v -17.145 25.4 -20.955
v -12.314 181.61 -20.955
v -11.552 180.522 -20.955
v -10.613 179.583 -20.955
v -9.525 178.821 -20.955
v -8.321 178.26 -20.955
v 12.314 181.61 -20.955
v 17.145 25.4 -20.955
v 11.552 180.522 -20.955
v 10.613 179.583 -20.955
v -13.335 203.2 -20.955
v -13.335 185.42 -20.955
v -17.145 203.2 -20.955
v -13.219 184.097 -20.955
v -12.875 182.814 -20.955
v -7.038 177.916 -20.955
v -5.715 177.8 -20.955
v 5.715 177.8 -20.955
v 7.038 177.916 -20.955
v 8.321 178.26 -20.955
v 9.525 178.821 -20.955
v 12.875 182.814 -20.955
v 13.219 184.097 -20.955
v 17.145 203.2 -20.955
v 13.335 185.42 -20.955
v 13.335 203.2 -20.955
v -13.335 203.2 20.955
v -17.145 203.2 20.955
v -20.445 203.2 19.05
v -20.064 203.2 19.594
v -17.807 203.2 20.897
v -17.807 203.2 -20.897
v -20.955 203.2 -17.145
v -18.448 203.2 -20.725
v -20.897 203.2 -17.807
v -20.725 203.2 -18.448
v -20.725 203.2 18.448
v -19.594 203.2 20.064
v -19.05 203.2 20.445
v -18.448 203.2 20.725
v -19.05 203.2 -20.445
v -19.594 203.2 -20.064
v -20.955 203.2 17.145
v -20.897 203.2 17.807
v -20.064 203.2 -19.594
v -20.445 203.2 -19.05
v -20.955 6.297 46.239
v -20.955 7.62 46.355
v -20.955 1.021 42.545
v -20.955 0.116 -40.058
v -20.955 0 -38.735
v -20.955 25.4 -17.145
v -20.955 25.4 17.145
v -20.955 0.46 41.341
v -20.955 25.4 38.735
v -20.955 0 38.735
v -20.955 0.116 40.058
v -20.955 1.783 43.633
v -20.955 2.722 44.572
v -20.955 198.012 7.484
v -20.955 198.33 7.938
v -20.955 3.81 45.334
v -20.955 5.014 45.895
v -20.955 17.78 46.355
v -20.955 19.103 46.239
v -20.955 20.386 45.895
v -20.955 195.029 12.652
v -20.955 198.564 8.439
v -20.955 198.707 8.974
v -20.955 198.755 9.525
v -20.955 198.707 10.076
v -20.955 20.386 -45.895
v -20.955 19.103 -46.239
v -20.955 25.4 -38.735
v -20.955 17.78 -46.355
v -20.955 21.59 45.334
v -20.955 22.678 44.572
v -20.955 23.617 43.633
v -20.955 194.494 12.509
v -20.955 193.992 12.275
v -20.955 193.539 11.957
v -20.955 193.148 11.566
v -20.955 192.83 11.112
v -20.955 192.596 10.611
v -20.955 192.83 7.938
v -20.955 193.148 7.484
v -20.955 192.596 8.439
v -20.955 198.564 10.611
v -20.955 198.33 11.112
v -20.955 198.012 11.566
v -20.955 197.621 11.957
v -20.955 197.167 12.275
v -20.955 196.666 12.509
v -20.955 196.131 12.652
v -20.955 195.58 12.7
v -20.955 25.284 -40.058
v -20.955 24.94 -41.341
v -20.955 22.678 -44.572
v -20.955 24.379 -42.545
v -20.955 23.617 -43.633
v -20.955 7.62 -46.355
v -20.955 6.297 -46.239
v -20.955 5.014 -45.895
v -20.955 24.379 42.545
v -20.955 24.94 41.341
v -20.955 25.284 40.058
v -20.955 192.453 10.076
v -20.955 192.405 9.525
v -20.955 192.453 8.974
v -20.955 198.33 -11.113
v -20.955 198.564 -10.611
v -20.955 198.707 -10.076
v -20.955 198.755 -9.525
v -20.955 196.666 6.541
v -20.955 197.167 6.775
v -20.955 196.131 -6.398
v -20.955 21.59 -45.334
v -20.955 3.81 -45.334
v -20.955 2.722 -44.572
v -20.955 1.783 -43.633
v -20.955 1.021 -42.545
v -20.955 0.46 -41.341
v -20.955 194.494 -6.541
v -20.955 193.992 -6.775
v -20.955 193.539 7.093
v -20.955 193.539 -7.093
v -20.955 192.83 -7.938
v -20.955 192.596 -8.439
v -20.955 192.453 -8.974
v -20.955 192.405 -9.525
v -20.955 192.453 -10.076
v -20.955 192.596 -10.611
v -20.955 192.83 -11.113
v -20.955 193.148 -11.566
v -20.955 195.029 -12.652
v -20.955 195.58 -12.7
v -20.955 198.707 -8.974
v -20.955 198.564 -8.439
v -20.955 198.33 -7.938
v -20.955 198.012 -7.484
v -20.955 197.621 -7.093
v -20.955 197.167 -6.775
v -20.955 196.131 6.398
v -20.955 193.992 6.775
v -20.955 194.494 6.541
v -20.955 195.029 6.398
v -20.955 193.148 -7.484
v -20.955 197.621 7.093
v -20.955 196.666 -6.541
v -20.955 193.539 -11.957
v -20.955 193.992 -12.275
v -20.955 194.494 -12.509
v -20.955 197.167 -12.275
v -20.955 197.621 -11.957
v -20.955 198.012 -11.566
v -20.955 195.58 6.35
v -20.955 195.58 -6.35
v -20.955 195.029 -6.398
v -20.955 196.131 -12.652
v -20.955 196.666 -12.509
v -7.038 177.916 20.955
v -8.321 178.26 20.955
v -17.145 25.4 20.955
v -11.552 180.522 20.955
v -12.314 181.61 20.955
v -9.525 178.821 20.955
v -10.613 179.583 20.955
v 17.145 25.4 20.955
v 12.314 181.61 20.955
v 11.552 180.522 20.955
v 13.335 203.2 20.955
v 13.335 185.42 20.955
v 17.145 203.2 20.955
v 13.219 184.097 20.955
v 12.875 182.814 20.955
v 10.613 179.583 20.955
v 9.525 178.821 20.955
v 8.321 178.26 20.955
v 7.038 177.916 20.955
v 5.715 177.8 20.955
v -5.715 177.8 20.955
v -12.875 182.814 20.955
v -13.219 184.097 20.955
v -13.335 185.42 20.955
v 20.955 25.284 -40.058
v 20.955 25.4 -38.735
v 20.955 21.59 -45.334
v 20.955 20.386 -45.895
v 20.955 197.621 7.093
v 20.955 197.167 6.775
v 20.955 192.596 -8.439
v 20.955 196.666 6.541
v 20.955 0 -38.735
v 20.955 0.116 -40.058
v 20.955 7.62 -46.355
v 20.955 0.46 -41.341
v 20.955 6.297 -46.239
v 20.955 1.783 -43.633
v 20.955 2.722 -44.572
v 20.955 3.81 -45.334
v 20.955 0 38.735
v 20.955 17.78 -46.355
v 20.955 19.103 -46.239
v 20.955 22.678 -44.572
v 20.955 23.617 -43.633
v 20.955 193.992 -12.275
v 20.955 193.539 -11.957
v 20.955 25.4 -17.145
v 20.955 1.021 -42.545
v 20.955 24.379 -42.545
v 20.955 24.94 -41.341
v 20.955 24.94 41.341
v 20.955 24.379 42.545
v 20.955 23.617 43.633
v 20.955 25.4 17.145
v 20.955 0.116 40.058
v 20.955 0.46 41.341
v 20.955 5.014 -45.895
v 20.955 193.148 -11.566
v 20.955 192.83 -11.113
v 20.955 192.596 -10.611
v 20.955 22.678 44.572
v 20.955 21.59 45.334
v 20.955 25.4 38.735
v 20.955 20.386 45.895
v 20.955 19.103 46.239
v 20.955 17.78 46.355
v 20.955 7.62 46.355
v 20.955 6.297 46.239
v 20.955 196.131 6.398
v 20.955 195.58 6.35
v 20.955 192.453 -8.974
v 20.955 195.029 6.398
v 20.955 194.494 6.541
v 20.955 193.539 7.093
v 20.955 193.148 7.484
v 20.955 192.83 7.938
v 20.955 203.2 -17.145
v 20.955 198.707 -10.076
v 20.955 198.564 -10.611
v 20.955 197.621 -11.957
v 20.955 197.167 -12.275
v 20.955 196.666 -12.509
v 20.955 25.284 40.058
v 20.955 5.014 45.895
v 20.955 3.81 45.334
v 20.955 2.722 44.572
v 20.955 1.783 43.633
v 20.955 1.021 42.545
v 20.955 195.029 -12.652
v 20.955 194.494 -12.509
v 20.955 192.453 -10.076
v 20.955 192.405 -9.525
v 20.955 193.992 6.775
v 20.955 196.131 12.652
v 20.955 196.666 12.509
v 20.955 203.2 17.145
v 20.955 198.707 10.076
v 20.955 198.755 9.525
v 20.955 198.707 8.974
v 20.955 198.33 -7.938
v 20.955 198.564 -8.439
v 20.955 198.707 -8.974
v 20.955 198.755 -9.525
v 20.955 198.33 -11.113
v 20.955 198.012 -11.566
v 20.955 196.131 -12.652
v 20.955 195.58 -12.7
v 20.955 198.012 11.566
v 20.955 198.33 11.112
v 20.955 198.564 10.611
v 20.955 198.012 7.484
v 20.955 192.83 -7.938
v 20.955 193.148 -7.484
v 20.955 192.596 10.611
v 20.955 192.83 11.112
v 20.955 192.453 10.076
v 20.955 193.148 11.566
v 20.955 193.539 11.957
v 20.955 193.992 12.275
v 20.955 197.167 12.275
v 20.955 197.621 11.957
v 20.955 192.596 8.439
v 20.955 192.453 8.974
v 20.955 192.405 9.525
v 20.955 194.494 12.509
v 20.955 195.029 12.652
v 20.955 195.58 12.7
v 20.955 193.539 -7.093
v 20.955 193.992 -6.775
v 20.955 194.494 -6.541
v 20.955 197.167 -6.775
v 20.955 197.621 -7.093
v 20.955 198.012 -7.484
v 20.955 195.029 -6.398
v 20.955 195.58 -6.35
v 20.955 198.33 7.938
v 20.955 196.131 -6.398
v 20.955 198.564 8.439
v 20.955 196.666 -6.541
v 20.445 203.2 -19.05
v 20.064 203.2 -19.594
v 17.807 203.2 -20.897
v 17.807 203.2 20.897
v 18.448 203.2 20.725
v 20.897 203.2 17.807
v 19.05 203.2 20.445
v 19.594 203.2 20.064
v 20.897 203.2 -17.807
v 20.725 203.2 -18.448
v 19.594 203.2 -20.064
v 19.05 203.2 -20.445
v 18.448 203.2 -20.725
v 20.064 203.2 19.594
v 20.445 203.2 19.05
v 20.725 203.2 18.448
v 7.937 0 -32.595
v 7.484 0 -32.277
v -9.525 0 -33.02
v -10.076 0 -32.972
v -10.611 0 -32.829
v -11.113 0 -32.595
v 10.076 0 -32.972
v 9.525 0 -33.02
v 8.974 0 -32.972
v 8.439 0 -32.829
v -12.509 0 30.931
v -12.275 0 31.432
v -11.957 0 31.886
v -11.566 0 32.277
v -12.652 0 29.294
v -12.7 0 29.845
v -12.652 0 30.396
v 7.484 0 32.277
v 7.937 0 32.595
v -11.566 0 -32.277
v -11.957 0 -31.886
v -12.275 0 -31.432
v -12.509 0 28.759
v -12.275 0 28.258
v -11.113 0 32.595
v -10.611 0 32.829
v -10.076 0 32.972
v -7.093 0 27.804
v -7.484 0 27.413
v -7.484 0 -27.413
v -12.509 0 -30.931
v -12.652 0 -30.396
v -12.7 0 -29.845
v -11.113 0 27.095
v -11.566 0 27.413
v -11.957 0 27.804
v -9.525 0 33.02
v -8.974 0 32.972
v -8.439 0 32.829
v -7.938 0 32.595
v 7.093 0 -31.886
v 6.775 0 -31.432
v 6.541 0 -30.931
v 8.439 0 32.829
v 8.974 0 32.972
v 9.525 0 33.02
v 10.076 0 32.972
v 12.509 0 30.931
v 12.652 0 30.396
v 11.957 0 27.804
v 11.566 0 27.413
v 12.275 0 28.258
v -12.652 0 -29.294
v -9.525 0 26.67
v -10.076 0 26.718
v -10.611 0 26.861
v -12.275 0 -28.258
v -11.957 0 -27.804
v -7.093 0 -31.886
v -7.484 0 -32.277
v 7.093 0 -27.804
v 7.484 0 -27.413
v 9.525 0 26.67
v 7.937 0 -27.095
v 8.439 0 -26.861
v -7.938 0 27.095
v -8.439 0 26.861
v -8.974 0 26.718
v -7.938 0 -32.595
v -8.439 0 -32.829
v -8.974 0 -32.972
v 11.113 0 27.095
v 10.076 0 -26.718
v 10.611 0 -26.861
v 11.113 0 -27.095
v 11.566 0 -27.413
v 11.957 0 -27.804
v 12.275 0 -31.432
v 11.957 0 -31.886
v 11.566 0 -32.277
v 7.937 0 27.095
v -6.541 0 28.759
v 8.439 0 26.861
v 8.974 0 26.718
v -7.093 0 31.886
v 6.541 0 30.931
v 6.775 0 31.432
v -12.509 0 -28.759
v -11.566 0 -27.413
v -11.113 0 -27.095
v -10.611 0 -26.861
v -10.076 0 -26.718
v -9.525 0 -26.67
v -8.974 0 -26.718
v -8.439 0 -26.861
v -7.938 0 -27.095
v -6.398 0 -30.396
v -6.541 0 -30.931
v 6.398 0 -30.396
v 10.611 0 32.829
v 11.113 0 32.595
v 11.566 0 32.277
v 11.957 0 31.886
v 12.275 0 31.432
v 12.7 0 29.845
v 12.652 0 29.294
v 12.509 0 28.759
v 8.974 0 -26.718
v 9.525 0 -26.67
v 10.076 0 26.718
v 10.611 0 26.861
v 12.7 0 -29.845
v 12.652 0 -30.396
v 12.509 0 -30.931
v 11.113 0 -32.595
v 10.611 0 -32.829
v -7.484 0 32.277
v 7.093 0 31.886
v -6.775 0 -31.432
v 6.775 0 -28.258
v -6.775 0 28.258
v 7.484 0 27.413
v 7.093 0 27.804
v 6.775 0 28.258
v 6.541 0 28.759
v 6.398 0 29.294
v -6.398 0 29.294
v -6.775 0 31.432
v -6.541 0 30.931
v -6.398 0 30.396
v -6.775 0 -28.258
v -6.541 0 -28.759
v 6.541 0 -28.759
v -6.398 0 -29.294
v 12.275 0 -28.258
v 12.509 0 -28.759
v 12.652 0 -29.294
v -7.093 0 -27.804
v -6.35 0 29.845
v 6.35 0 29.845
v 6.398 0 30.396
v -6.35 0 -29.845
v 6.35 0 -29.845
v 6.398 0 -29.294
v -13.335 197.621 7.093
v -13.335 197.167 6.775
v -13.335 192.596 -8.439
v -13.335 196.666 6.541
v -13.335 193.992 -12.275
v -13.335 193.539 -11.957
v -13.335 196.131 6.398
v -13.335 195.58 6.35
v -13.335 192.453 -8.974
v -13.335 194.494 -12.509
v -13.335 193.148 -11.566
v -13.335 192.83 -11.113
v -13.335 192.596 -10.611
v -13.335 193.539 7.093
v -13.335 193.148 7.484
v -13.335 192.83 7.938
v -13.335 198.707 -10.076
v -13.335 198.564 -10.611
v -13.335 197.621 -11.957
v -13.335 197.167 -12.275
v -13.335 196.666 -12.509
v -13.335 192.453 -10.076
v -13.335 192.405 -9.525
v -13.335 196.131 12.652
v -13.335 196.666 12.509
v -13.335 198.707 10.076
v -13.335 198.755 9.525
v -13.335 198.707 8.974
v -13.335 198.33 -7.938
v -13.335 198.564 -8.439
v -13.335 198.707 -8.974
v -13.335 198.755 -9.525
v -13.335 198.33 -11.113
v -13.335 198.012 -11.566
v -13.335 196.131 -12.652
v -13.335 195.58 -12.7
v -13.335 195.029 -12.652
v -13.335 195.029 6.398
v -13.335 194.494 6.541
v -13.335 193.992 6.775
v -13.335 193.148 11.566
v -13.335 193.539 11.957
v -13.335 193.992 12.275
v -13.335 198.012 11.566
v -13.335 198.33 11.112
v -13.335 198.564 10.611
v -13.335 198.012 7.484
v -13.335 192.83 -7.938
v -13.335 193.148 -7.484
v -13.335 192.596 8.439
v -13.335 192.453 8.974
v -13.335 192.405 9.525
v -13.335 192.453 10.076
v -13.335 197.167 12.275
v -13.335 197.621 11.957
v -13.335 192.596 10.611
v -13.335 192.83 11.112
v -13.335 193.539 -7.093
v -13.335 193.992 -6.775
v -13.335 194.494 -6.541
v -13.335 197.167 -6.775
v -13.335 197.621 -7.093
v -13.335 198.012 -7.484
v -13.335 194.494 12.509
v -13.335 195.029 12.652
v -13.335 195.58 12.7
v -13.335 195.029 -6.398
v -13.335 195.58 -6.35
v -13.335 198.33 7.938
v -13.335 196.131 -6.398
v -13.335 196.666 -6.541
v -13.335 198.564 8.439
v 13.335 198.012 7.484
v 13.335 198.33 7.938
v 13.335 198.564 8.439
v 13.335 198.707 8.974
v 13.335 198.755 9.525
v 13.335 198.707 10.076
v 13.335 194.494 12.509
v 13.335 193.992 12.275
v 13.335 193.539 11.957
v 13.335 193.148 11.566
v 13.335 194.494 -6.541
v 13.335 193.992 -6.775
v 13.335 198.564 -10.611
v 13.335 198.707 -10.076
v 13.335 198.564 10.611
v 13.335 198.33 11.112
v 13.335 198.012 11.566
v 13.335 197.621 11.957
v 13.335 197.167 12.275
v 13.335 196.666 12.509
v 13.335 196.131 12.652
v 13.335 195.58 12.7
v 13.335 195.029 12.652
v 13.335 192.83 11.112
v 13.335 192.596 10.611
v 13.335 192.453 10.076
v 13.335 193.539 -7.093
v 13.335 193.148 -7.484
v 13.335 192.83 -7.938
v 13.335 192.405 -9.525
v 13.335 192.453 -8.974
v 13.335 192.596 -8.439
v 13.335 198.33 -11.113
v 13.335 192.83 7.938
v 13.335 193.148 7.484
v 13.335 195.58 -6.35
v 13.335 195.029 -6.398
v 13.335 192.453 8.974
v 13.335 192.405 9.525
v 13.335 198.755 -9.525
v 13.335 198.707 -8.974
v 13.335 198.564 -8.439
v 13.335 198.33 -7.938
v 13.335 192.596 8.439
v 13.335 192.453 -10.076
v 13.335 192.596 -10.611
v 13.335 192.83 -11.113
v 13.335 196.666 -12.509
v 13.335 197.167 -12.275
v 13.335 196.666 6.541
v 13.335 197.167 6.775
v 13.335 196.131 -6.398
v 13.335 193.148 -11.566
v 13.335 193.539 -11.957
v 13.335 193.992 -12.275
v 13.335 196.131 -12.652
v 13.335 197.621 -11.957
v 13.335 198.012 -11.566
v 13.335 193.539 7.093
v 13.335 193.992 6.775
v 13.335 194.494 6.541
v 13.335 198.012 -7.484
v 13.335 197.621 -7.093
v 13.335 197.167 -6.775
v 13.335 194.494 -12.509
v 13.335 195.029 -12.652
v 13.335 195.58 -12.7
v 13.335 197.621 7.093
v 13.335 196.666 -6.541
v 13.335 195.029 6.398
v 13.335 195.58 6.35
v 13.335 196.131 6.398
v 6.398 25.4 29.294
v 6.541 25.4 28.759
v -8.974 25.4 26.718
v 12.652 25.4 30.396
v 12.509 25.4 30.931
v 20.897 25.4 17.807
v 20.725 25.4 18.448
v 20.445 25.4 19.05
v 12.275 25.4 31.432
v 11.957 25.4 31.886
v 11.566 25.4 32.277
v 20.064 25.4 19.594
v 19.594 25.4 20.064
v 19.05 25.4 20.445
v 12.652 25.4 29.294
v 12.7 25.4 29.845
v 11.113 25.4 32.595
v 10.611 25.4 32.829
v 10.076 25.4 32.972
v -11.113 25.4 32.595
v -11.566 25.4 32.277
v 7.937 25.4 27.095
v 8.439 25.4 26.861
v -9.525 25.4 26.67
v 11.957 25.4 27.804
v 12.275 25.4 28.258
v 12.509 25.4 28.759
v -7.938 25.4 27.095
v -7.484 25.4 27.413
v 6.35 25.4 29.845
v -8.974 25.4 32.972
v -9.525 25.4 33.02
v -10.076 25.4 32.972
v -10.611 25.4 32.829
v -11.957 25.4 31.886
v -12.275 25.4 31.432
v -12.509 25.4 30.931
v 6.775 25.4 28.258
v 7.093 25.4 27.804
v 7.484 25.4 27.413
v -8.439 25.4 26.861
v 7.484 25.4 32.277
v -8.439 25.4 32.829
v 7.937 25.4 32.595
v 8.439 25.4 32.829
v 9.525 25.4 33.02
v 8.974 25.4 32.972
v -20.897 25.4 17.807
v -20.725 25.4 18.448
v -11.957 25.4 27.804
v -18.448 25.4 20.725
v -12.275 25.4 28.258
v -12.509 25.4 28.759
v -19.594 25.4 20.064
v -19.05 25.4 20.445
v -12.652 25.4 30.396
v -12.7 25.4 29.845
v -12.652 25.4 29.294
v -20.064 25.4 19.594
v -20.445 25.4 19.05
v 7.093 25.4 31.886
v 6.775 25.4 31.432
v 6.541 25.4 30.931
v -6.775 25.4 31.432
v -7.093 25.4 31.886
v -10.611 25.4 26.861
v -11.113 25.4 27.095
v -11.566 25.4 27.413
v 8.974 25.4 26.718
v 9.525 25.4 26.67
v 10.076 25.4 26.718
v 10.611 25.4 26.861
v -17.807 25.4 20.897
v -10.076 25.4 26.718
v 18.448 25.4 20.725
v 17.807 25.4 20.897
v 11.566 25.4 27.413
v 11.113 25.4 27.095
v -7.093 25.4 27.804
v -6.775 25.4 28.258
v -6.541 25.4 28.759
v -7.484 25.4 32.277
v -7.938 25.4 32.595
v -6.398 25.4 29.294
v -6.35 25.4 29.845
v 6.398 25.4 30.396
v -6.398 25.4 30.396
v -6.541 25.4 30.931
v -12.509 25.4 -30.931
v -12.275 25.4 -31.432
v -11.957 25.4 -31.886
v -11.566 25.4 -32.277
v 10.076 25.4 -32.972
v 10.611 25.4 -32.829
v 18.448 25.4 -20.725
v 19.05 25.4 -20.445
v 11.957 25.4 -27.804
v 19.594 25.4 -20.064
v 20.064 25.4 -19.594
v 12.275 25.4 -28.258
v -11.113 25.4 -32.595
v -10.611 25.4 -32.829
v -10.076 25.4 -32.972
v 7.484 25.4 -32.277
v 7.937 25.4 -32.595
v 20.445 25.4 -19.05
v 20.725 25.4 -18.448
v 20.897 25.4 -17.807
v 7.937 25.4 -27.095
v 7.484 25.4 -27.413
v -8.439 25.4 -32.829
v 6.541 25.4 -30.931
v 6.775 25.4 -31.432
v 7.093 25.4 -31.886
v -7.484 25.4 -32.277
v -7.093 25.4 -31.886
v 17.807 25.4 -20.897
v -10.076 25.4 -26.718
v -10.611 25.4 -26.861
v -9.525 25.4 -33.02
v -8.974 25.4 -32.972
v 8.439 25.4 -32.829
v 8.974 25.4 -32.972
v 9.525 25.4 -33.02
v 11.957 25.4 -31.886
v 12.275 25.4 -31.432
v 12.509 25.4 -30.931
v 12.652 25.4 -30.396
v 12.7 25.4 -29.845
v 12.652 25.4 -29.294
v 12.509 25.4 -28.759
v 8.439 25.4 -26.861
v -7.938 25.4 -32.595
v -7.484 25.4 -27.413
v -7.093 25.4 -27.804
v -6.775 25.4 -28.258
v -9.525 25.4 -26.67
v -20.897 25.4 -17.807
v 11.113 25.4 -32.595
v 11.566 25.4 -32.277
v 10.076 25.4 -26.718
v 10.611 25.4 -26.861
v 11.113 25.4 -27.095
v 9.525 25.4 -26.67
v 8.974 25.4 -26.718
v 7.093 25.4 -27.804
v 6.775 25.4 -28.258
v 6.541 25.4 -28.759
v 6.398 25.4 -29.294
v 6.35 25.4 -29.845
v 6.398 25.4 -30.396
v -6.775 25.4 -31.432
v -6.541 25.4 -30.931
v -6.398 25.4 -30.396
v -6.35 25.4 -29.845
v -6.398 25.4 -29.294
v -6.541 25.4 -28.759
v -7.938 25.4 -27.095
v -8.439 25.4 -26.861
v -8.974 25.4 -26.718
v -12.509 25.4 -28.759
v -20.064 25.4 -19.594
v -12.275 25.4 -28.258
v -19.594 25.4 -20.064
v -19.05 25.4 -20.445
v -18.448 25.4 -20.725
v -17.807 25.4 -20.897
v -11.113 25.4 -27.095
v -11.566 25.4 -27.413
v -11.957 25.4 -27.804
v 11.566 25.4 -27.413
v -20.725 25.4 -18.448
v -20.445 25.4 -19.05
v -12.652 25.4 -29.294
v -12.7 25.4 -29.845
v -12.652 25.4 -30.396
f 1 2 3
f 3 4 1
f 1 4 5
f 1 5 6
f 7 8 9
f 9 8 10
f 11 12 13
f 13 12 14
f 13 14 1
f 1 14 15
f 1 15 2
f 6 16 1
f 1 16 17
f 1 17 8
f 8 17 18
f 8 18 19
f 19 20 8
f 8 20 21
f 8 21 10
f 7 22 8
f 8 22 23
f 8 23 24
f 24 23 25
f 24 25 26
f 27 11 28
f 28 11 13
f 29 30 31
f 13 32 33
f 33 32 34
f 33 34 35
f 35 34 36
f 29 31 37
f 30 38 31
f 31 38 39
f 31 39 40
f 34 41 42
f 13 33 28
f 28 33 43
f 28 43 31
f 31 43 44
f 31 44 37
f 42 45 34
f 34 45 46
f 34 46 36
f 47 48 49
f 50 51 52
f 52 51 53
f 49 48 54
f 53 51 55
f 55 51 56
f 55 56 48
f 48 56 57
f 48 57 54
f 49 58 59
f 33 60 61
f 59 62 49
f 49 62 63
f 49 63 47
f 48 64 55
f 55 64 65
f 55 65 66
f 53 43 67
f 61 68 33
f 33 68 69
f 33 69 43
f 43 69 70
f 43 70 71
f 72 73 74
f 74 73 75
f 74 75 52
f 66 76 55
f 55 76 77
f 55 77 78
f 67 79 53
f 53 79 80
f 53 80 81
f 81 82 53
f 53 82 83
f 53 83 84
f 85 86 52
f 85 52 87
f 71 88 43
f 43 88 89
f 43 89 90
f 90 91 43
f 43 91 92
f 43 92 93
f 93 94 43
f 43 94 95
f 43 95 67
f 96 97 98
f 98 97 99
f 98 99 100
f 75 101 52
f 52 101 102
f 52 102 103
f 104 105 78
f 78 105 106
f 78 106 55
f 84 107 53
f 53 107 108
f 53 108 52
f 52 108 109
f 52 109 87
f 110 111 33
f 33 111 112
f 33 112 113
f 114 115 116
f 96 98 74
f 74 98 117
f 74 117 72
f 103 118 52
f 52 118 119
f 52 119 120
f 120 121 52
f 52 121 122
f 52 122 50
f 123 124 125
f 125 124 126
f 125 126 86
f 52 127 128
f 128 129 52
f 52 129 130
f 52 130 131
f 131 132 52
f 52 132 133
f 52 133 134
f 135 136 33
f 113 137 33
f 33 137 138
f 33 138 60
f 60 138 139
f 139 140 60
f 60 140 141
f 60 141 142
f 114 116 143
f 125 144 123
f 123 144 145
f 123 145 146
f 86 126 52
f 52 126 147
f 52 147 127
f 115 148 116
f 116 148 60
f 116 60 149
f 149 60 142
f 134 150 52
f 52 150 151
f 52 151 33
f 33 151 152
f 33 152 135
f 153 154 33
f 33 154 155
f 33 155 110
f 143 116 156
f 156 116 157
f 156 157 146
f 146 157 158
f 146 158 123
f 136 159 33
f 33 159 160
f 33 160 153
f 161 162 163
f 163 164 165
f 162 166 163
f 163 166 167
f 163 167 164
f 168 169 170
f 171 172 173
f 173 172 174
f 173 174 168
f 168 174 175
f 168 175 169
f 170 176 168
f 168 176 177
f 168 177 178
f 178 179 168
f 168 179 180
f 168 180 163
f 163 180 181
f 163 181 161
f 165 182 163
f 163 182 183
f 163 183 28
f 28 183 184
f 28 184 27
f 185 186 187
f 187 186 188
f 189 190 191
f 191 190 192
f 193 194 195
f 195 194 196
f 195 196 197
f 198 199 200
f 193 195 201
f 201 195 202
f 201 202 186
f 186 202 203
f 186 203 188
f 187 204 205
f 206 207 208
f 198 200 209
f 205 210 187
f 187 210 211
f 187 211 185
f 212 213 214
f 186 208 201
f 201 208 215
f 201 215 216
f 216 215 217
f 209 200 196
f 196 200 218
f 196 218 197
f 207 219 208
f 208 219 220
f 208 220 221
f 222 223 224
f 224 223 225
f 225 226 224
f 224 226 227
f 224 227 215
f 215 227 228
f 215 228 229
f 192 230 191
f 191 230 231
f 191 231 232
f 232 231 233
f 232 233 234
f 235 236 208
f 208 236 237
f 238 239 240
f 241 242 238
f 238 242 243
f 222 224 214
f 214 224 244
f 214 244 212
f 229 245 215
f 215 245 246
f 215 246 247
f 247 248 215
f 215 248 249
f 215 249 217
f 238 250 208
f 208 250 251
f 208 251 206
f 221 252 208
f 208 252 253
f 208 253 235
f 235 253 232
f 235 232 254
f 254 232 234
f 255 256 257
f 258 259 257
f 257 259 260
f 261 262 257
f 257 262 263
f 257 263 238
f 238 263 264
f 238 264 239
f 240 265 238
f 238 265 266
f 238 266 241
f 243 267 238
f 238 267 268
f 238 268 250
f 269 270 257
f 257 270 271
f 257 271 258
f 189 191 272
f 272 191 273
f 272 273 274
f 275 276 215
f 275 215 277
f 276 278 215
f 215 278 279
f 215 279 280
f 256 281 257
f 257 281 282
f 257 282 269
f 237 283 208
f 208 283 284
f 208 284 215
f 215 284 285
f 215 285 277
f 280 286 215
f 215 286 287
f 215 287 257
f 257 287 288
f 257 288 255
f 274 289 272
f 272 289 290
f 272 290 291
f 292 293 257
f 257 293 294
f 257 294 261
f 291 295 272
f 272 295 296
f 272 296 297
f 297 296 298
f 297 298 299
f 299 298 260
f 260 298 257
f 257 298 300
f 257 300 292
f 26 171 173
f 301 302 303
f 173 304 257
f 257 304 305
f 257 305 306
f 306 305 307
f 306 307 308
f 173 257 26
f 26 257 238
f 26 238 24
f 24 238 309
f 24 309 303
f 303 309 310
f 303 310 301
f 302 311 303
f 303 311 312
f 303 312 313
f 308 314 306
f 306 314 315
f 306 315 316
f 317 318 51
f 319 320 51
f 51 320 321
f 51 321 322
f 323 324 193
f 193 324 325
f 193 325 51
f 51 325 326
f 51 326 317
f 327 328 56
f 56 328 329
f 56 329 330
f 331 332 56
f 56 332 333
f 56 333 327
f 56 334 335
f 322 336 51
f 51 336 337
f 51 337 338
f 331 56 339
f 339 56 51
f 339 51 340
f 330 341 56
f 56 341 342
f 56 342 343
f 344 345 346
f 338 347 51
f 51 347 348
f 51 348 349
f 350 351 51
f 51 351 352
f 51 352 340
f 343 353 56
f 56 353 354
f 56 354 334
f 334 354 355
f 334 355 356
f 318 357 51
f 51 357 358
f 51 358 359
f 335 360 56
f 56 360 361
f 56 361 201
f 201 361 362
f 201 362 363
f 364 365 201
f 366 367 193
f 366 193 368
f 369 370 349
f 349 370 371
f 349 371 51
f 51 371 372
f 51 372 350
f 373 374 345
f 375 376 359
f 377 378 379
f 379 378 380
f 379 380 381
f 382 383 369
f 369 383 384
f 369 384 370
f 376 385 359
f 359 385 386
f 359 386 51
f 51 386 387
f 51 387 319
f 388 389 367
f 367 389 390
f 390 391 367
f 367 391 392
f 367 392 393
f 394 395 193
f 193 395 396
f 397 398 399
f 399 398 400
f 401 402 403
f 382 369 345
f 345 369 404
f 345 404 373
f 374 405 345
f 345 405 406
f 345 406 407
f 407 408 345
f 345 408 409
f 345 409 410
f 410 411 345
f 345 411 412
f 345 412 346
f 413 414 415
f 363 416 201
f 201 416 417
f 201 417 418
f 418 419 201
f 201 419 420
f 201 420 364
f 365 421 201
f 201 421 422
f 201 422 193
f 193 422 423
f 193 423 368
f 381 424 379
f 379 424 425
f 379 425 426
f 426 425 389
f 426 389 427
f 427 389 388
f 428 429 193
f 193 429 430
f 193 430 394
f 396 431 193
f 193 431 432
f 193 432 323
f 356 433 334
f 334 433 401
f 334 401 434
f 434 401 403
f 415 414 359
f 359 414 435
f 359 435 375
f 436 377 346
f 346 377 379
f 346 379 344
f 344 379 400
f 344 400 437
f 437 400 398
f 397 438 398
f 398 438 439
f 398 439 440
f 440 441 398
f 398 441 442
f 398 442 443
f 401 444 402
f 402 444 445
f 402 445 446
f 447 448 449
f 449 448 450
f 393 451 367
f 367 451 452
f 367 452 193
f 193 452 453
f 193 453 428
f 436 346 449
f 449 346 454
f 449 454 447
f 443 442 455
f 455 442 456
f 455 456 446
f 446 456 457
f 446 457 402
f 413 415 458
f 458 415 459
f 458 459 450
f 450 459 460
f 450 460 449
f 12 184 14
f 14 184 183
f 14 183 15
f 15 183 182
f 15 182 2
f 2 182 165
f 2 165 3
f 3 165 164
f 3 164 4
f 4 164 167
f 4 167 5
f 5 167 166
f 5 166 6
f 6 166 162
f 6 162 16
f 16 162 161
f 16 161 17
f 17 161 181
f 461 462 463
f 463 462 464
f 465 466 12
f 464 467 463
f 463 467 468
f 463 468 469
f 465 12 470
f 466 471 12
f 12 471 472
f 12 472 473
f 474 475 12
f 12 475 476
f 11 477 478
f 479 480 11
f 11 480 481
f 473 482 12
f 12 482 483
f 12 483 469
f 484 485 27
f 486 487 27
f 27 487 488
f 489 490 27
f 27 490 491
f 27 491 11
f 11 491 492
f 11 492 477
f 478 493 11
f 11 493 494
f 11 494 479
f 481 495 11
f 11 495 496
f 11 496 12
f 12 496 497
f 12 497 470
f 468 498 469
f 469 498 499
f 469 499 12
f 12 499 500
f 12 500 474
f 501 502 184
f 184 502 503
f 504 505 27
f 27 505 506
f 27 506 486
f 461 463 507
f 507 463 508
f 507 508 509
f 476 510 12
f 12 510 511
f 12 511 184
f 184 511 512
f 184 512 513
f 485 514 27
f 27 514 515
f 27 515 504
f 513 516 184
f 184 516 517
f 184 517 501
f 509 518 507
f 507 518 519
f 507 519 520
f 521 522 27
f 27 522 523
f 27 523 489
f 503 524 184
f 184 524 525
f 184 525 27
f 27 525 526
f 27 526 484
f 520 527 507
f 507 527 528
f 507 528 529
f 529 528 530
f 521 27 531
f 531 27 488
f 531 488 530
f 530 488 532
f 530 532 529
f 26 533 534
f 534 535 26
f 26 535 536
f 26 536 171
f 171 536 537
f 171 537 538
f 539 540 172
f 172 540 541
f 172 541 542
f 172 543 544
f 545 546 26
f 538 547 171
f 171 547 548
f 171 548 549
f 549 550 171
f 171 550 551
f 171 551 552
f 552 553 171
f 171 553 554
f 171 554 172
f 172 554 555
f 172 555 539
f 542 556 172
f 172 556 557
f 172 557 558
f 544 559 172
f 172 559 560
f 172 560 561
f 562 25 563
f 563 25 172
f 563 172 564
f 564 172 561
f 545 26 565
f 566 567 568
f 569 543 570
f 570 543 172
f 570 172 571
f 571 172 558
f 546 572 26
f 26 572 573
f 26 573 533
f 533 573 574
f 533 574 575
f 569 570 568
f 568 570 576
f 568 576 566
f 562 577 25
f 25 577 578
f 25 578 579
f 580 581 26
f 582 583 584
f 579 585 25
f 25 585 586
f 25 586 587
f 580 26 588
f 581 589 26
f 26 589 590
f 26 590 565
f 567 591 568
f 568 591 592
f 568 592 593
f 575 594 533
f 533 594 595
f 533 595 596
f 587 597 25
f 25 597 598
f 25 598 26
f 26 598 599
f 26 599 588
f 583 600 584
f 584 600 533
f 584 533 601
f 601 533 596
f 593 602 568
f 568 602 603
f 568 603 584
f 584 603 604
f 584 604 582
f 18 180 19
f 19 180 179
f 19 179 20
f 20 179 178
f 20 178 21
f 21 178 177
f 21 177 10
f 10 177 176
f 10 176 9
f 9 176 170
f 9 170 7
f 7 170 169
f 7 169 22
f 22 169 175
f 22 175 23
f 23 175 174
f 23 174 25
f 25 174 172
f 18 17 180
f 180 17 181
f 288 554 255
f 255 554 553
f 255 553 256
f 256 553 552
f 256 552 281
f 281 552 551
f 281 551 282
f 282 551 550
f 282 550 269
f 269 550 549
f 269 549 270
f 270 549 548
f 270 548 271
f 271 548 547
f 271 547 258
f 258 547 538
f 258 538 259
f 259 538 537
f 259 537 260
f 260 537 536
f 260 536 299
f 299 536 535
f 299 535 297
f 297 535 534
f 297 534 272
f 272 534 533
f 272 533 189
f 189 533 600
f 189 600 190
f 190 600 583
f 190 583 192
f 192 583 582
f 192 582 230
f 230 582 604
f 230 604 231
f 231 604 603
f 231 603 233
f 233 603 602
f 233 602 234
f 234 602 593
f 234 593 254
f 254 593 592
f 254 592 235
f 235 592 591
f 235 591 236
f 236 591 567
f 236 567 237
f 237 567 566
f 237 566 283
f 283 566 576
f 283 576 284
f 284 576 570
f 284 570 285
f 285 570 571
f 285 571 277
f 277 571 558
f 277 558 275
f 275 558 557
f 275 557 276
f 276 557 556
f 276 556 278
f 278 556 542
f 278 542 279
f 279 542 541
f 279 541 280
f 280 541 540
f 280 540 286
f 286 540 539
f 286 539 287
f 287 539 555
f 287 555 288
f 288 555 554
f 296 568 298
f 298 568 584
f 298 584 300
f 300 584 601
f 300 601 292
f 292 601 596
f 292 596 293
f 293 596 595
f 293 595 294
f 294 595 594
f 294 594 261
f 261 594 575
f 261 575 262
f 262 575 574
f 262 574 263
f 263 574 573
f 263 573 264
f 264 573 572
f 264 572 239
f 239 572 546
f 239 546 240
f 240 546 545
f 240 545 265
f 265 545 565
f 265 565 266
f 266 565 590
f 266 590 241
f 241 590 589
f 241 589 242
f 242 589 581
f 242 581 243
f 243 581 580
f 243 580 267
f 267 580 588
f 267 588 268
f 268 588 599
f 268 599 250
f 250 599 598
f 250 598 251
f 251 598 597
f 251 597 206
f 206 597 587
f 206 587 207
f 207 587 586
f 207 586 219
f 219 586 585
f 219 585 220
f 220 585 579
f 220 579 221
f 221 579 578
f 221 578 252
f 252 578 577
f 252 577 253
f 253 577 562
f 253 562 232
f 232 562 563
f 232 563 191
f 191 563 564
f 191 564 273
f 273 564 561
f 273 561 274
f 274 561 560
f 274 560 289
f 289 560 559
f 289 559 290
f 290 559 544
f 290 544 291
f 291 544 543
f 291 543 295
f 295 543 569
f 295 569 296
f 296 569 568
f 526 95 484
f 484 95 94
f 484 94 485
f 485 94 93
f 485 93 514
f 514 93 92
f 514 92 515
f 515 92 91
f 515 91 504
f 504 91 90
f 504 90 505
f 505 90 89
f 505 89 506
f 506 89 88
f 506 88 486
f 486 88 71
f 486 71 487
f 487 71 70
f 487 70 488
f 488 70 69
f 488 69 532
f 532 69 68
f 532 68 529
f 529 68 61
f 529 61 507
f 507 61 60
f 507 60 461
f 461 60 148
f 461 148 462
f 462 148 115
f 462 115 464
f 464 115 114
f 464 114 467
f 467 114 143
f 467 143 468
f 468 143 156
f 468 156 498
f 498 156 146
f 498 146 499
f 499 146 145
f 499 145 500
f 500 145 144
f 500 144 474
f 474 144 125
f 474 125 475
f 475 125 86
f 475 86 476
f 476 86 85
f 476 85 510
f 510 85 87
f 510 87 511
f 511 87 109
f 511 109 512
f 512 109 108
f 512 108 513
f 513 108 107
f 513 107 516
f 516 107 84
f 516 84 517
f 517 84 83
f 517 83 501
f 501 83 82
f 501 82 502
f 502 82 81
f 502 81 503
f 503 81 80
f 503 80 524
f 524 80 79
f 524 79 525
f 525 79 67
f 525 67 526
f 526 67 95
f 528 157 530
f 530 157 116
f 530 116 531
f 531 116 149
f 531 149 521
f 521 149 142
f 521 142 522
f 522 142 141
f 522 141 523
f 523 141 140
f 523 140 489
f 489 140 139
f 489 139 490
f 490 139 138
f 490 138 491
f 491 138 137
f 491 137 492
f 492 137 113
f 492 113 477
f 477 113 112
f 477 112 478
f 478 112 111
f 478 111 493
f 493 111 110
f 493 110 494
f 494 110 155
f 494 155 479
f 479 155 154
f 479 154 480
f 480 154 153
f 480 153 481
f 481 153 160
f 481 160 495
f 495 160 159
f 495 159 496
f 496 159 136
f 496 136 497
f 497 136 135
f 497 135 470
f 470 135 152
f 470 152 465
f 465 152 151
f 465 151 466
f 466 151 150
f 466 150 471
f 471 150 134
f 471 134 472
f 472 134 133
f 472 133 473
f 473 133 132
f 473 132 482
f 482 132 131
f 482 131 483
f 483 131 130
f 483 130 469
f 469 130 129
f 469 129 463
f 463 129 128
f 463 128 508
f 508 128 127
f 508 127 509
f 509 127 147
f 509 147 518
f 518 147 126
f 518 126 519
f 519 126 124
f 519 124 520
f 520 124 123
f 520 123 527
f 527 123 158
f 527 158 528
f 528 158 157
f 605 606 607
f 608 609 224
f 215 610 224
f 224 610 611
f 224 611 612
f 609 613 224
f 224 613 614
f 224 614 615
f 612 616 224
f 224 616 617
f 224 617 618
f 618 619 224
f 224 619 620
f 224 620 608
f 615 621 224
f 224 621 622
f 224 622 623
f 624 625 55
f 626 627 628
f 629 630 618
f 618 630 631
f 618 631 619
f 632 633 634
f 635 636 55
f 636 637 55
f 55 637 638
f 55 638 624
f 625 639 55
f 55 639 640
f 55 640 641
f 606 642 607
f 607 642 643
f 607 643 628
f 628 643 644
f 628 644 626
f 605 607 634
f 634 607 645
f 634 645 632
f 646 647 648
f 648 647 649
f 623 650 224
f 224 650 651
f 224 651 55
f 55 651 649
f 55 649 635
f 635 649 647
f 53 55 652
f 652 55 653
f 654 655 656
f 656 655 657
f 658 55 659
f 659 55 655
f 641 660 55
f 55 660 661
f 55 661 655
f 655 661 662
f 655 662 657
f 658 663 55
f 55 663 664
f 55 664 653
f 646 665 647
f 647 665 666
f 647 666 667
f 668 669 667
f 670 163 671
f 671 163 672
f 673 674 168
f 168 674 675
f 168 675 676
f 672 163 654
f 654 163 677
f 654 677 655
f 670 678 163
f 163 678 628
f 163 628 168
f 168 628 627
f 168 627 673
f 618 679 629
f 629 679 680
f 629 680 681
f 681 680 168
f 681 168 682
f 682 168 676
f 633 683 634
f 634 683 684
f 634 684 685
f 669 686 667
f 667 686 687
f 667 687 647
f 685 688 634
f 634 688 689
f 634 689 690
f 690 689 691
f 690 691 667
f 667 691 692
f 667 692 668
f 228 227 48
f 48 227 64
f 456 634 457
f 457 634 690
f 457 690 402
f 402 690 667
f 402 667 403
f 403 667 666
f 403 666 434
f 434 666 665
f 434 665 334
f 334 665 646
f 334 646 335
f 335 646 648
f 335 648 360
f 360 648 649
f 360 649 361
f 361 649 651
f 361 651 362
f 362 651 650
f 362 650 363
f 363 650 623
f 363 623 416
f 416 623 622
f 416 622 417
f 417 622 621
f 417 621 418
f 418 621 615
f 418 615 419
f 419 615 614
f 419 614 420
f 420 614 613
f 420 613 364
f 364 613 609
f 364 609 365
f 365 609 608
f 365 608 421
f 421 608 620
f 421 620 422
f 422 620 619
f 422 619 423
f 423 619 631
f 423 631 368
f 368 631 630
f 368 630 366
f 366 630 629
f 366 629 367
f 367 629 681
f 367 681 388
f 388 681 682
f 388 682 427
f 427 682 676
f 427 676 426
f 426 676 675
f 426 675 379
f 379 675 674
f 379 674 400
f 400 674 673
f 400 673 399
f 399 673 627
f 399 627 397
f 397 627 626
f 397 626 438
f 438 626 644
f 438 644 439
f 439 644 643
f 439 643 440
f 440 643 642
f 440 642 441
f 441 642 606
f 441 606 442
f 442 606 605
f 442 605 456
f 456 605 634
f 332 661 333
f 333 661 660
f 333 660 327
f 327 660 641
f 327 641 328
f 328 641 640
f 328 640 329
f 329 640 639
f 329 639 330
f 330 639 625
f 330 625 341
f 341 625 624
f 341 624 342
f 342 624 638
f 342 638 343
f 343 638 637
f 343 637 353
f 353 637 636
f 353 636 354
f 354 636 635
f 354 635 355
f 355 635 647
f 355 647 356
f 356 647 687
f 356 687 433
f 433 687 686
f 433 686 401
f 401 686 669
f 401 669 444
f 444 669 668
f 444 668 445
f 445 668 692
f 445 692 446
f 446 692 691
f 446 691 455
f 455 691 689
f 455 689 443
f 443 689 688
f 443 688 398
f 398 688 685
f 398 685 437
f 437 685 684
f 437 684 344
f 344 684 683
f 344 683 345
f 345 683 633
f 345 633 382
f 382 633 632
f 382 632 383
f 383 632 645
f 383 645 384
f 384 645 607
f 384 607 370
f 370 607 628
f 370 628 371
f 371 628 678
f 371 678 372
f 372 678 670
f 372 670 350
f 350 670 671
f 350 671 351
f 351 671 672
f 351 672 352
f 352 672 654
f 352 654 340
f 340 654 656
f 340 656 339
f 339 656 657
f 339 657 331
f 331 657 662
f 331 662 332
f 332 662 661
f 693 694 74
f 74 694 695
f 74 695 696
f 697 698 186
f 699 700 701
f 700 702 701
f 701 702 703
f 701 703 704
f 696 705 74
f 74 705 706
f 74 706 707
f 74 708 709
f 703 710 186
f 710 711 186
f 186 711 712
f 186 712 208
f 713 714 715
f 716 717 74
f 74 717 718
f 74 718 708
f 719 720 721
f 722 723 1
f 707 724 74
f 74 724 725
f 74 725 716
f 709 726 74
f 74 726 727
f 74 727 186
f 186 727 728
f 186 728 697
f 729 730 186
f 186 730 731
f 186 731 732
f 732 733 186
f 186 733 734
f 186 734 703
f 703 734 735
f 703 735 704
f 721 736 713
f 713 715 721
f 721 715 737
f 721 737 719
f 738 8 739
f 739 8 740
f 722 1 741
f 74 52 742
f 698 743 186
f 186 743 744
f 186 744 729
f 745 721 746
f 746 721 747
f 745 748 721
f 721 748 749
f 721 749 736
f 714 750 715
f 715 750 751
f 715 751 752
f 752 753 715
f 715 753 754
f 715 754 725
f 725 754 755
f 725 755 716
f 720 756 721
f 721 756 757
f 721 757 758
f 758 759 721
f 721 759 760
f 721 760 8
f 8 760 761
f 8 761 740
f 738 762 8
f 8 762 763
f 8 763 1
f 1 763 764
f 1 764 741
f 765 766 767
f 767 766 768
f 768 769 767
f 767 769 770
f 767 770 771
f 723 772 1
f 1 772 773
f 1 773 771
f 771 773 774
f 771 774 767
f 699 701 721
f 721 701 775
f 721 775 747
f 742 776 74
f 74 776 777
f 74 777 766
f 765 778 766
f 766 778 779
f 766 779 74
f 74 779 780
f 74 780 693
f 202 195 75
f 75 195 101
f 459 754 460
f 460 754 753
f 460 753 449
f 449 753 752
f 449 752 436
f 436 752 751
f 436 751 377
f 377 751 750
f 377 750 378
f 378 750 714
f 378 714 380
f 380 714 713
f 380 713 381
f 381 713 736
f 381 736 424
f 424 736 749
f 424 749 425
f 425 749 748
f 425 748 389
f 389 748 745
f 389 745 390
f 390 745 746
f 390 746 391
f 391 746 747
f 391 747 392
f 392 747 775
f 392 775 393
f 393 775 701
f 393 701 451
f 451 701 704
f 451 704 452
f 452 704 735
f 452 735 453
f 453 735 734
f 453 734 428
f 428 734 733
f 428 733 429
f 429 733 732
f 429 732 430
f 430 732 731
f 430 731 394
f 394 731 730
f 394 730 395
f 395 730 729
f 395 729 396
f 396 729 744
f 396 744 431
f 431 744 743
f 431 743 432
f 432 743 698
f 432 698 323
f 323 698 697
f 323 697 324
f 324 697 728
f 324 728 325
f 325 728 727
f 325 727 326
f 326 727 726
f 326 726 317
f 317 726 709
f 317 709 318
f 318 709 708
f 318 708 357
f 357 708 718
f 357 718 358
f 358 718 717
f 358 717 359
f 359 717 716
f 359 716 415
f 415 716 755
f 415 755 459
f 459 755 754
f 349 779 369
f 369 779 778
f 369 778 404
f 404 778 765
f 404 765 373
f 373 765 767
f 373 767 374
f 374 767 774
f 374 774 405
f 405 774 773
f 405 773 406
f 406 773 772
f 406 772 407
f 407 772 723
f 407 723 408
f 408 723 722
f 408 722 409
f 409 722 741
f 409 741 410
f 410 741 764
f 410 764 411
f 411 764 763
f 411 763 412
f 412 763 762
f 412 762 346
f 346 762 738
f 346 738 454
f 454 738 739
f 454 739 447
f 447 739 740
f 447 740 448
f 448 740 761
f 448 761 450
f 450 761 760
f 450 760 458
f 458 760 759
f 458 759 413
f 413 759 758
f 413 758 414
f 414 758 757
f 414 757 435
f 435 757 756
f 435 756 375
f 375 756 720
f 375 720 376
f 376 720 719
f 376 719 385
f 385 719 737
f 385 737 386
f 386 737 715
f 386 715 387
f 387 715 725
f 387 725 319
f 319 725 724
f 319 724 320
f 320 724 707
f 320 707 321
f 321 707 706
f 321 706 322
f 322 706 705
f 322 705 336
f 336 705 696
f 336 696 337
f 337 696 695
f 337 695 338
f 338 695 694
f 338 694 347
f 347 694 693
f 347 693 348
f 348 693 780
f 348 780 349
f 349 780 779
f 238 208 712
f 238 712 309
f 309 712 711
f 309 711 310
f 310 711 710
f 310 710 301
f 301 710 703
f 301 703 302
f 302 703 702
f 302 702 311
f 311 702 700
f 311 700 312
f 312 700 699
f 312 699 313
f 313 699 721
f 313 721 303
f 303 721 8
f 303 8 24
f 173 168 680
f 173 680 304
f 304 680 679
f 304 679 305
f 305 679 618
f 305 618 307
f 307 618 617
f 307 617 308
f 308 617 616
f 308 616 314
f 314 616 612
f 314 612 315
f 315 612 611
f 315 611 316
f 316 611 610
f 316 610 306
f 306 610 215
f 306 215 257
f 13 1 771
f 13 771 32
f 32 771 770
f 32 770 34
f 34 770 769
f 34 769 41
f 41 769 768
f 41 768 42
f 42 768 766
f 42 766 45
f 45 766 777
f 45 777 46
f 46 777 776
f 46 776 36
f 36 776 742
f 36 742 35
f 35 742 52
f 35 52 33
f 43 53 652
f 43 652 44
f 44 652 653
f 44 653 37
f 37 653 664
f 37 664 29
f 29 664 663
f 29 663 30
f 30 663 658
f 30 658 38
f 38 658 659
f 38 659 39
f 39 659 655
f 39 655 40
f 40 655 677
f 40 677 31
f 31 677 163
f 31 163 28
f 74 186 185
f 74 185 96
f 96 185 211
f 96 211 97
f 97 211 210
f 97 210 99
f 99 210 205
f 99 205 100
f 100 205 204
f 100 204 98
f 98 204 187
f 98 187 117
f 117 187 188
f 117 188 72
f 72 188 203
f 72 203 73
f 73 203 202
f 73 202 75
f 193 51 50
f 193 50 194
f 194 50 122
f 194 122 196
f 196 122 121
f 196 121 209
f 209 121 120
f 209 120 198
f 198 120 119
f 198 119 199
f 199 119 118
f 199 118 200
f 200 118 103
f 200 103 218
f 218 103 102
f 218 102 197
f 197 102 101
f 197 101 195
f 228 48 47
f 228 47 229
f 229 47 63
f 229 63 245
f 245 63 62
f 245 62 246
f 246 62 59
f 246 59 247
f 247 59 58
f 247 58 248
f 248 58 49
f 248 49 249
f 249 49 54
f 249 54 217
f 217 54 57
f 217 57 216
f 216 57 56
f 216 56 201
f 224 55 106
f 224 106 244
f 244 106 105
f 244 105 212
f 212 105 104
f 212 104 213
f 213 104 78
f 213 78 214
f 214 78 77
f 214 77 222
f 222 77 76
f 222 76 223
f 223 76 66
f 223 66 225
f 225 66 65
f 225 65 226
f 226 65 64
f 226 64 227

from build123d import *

# Parameters (mm, degrees)
SKETCH1_W           = 26.67
SKETCH1_H           = 26.67
BOSS_EXTRUDE1_DEPTH = 5.08
SKETCH9_W           = 41.91
SKETCH9_H           = 41.91
BOSS_EXTRUDE7_DEPTH = 203.2
CUT_EXTRUDE4_DEPTH  = 42.91
SKETCH11_R          = 3.175
CUT_EXTRUDE5_DEPTH  = 42.91
SKETCH12_W          = 41.91
SKETCH12_H          = 25.4
BOSS_EXTRUDE8_DEPTH = 25.4
SKETCH13_R          = 3.175
CUT_EXTRUDE6_DEPTH  = 26.4
FILLET2_R           = 3.81
FILLET3_R           = 7.62


with BuildPart() as part:
    # Sketch1 → Boss-Extrude1 (new body)
    with BuildSketch(Plane(origin=(0, 0, 0), x_dir=(1, 0, 0), z_dir=(0, 1, 0))):
        Rectangle(SKETCH1_W, SKETCH1_H)
    extrude(amount=BOSS_EXTRUDE1_DEPTH)

    # Sketch9 → Boss-Extrude7 (add)
    with BuildSketch(Plane.XZ):
        Rectangle(SKETCH9_W, SKETCH9_H)
    extrude(amount=-BOSS_EXTRUDE7_DEPTH)

    # Sketch10 → Cut-Extrude4 (cut, through all)
    with BuildSketch(Plane.XY.offset(20.955)):
        with BuildLine():
            Line((-13.335, 185.42), (-13.335, 203.2))
            Line((-13.335, 203.2), (13.335, 203.2))
            Line((13.335, 203.2), (13.335, 185.42))
            ThreePointArc((13.335, 185.42), (11.103153673, 180.031846327), (5.715, 177.8))
            Line((5.715, 177.8), (-5.715, 177.8))
            ThreePointArc((-5.715, 177.8), (-11.103153673, 180.031846327), (-13.335, 185.42))
        make_face()
    extrude(amount=-CUT_EXTRUDE4_DEPTH, mode=Mode.SUBTRACT)

    # Sketch11 → Cut-Extrude5 (cut, through all)
    with BuildSketch(Plane.ZY.offset(20.955)):
        with Locations((-9.525, 195.58)):
            Circle(SKETCH11_R)
        with Locations((9.525, 195.58)):
            Circle(SKETCH11_R)
    extrude(amount=-CUT_EXTRUDE5_DEPTH, mode=Mode.SUBTRACT)

    # Sketch12 → Boss-Extrude8 (add)
    with BuildSketch(Plane.XY.offset(20.955)):
        with Locations((0, 12.7)):
            Rectangle(SKETCH12_W, SKETCH12_H)
    boss_extrude8 = extrude(amount=BOSS_EXTRUDE8_DEPTH)

    # Sketch13 → Cut-Extrude6 (cut, through all)
    with BuildSketch(Plane(origin=(0, 25.4, 0), x_dir=(1, 0, 0), z_dir=(0, 1, 0))):
        with Locations((-9.525, -29.845)):
            Circle(SKETCH13_R)
        with Locations((9.525, -29.845)):
            Circle(SKETCH13_R)
    cut_extrude6 = extrude(amount=-CUT_EXTRUDE6_DEPTH, mode=Mode.SUBTRACT)

    # Mirror1: Boss-Extrude8, Cut-Extrude6 across plane
    add(boss_extrude8.mirror(Plane.XY))
    add(cut_extrude6.mirror(Plane.XY), mode=Mode.SUBTRACT)

    # Fillet2
    fillet2_edges = [part.edges().sort_by_distance(p)[0] for p in [
        (20.955, 114.3, -20.955),
        (-20.955, 114.3, -20.955),
        (-20.955, 114.3, 20.955),
        (20.955, 114.3, 20.955),
    ]]
    fillet(fillet2_edges, radius=FILLET2_R)

    # Fillet3
    fillet3_edges = [part.edges().sort_by_distance(p)[0] for p in [
        (0, 0, 46.355),
        (0, 25.4, 46.355),
        (0, 25.4, -46.355),
        (0, 0, -46.355),
    ]]
    fillet(fillet3_edges, radius=FILLET3_R)


solid = part.part
